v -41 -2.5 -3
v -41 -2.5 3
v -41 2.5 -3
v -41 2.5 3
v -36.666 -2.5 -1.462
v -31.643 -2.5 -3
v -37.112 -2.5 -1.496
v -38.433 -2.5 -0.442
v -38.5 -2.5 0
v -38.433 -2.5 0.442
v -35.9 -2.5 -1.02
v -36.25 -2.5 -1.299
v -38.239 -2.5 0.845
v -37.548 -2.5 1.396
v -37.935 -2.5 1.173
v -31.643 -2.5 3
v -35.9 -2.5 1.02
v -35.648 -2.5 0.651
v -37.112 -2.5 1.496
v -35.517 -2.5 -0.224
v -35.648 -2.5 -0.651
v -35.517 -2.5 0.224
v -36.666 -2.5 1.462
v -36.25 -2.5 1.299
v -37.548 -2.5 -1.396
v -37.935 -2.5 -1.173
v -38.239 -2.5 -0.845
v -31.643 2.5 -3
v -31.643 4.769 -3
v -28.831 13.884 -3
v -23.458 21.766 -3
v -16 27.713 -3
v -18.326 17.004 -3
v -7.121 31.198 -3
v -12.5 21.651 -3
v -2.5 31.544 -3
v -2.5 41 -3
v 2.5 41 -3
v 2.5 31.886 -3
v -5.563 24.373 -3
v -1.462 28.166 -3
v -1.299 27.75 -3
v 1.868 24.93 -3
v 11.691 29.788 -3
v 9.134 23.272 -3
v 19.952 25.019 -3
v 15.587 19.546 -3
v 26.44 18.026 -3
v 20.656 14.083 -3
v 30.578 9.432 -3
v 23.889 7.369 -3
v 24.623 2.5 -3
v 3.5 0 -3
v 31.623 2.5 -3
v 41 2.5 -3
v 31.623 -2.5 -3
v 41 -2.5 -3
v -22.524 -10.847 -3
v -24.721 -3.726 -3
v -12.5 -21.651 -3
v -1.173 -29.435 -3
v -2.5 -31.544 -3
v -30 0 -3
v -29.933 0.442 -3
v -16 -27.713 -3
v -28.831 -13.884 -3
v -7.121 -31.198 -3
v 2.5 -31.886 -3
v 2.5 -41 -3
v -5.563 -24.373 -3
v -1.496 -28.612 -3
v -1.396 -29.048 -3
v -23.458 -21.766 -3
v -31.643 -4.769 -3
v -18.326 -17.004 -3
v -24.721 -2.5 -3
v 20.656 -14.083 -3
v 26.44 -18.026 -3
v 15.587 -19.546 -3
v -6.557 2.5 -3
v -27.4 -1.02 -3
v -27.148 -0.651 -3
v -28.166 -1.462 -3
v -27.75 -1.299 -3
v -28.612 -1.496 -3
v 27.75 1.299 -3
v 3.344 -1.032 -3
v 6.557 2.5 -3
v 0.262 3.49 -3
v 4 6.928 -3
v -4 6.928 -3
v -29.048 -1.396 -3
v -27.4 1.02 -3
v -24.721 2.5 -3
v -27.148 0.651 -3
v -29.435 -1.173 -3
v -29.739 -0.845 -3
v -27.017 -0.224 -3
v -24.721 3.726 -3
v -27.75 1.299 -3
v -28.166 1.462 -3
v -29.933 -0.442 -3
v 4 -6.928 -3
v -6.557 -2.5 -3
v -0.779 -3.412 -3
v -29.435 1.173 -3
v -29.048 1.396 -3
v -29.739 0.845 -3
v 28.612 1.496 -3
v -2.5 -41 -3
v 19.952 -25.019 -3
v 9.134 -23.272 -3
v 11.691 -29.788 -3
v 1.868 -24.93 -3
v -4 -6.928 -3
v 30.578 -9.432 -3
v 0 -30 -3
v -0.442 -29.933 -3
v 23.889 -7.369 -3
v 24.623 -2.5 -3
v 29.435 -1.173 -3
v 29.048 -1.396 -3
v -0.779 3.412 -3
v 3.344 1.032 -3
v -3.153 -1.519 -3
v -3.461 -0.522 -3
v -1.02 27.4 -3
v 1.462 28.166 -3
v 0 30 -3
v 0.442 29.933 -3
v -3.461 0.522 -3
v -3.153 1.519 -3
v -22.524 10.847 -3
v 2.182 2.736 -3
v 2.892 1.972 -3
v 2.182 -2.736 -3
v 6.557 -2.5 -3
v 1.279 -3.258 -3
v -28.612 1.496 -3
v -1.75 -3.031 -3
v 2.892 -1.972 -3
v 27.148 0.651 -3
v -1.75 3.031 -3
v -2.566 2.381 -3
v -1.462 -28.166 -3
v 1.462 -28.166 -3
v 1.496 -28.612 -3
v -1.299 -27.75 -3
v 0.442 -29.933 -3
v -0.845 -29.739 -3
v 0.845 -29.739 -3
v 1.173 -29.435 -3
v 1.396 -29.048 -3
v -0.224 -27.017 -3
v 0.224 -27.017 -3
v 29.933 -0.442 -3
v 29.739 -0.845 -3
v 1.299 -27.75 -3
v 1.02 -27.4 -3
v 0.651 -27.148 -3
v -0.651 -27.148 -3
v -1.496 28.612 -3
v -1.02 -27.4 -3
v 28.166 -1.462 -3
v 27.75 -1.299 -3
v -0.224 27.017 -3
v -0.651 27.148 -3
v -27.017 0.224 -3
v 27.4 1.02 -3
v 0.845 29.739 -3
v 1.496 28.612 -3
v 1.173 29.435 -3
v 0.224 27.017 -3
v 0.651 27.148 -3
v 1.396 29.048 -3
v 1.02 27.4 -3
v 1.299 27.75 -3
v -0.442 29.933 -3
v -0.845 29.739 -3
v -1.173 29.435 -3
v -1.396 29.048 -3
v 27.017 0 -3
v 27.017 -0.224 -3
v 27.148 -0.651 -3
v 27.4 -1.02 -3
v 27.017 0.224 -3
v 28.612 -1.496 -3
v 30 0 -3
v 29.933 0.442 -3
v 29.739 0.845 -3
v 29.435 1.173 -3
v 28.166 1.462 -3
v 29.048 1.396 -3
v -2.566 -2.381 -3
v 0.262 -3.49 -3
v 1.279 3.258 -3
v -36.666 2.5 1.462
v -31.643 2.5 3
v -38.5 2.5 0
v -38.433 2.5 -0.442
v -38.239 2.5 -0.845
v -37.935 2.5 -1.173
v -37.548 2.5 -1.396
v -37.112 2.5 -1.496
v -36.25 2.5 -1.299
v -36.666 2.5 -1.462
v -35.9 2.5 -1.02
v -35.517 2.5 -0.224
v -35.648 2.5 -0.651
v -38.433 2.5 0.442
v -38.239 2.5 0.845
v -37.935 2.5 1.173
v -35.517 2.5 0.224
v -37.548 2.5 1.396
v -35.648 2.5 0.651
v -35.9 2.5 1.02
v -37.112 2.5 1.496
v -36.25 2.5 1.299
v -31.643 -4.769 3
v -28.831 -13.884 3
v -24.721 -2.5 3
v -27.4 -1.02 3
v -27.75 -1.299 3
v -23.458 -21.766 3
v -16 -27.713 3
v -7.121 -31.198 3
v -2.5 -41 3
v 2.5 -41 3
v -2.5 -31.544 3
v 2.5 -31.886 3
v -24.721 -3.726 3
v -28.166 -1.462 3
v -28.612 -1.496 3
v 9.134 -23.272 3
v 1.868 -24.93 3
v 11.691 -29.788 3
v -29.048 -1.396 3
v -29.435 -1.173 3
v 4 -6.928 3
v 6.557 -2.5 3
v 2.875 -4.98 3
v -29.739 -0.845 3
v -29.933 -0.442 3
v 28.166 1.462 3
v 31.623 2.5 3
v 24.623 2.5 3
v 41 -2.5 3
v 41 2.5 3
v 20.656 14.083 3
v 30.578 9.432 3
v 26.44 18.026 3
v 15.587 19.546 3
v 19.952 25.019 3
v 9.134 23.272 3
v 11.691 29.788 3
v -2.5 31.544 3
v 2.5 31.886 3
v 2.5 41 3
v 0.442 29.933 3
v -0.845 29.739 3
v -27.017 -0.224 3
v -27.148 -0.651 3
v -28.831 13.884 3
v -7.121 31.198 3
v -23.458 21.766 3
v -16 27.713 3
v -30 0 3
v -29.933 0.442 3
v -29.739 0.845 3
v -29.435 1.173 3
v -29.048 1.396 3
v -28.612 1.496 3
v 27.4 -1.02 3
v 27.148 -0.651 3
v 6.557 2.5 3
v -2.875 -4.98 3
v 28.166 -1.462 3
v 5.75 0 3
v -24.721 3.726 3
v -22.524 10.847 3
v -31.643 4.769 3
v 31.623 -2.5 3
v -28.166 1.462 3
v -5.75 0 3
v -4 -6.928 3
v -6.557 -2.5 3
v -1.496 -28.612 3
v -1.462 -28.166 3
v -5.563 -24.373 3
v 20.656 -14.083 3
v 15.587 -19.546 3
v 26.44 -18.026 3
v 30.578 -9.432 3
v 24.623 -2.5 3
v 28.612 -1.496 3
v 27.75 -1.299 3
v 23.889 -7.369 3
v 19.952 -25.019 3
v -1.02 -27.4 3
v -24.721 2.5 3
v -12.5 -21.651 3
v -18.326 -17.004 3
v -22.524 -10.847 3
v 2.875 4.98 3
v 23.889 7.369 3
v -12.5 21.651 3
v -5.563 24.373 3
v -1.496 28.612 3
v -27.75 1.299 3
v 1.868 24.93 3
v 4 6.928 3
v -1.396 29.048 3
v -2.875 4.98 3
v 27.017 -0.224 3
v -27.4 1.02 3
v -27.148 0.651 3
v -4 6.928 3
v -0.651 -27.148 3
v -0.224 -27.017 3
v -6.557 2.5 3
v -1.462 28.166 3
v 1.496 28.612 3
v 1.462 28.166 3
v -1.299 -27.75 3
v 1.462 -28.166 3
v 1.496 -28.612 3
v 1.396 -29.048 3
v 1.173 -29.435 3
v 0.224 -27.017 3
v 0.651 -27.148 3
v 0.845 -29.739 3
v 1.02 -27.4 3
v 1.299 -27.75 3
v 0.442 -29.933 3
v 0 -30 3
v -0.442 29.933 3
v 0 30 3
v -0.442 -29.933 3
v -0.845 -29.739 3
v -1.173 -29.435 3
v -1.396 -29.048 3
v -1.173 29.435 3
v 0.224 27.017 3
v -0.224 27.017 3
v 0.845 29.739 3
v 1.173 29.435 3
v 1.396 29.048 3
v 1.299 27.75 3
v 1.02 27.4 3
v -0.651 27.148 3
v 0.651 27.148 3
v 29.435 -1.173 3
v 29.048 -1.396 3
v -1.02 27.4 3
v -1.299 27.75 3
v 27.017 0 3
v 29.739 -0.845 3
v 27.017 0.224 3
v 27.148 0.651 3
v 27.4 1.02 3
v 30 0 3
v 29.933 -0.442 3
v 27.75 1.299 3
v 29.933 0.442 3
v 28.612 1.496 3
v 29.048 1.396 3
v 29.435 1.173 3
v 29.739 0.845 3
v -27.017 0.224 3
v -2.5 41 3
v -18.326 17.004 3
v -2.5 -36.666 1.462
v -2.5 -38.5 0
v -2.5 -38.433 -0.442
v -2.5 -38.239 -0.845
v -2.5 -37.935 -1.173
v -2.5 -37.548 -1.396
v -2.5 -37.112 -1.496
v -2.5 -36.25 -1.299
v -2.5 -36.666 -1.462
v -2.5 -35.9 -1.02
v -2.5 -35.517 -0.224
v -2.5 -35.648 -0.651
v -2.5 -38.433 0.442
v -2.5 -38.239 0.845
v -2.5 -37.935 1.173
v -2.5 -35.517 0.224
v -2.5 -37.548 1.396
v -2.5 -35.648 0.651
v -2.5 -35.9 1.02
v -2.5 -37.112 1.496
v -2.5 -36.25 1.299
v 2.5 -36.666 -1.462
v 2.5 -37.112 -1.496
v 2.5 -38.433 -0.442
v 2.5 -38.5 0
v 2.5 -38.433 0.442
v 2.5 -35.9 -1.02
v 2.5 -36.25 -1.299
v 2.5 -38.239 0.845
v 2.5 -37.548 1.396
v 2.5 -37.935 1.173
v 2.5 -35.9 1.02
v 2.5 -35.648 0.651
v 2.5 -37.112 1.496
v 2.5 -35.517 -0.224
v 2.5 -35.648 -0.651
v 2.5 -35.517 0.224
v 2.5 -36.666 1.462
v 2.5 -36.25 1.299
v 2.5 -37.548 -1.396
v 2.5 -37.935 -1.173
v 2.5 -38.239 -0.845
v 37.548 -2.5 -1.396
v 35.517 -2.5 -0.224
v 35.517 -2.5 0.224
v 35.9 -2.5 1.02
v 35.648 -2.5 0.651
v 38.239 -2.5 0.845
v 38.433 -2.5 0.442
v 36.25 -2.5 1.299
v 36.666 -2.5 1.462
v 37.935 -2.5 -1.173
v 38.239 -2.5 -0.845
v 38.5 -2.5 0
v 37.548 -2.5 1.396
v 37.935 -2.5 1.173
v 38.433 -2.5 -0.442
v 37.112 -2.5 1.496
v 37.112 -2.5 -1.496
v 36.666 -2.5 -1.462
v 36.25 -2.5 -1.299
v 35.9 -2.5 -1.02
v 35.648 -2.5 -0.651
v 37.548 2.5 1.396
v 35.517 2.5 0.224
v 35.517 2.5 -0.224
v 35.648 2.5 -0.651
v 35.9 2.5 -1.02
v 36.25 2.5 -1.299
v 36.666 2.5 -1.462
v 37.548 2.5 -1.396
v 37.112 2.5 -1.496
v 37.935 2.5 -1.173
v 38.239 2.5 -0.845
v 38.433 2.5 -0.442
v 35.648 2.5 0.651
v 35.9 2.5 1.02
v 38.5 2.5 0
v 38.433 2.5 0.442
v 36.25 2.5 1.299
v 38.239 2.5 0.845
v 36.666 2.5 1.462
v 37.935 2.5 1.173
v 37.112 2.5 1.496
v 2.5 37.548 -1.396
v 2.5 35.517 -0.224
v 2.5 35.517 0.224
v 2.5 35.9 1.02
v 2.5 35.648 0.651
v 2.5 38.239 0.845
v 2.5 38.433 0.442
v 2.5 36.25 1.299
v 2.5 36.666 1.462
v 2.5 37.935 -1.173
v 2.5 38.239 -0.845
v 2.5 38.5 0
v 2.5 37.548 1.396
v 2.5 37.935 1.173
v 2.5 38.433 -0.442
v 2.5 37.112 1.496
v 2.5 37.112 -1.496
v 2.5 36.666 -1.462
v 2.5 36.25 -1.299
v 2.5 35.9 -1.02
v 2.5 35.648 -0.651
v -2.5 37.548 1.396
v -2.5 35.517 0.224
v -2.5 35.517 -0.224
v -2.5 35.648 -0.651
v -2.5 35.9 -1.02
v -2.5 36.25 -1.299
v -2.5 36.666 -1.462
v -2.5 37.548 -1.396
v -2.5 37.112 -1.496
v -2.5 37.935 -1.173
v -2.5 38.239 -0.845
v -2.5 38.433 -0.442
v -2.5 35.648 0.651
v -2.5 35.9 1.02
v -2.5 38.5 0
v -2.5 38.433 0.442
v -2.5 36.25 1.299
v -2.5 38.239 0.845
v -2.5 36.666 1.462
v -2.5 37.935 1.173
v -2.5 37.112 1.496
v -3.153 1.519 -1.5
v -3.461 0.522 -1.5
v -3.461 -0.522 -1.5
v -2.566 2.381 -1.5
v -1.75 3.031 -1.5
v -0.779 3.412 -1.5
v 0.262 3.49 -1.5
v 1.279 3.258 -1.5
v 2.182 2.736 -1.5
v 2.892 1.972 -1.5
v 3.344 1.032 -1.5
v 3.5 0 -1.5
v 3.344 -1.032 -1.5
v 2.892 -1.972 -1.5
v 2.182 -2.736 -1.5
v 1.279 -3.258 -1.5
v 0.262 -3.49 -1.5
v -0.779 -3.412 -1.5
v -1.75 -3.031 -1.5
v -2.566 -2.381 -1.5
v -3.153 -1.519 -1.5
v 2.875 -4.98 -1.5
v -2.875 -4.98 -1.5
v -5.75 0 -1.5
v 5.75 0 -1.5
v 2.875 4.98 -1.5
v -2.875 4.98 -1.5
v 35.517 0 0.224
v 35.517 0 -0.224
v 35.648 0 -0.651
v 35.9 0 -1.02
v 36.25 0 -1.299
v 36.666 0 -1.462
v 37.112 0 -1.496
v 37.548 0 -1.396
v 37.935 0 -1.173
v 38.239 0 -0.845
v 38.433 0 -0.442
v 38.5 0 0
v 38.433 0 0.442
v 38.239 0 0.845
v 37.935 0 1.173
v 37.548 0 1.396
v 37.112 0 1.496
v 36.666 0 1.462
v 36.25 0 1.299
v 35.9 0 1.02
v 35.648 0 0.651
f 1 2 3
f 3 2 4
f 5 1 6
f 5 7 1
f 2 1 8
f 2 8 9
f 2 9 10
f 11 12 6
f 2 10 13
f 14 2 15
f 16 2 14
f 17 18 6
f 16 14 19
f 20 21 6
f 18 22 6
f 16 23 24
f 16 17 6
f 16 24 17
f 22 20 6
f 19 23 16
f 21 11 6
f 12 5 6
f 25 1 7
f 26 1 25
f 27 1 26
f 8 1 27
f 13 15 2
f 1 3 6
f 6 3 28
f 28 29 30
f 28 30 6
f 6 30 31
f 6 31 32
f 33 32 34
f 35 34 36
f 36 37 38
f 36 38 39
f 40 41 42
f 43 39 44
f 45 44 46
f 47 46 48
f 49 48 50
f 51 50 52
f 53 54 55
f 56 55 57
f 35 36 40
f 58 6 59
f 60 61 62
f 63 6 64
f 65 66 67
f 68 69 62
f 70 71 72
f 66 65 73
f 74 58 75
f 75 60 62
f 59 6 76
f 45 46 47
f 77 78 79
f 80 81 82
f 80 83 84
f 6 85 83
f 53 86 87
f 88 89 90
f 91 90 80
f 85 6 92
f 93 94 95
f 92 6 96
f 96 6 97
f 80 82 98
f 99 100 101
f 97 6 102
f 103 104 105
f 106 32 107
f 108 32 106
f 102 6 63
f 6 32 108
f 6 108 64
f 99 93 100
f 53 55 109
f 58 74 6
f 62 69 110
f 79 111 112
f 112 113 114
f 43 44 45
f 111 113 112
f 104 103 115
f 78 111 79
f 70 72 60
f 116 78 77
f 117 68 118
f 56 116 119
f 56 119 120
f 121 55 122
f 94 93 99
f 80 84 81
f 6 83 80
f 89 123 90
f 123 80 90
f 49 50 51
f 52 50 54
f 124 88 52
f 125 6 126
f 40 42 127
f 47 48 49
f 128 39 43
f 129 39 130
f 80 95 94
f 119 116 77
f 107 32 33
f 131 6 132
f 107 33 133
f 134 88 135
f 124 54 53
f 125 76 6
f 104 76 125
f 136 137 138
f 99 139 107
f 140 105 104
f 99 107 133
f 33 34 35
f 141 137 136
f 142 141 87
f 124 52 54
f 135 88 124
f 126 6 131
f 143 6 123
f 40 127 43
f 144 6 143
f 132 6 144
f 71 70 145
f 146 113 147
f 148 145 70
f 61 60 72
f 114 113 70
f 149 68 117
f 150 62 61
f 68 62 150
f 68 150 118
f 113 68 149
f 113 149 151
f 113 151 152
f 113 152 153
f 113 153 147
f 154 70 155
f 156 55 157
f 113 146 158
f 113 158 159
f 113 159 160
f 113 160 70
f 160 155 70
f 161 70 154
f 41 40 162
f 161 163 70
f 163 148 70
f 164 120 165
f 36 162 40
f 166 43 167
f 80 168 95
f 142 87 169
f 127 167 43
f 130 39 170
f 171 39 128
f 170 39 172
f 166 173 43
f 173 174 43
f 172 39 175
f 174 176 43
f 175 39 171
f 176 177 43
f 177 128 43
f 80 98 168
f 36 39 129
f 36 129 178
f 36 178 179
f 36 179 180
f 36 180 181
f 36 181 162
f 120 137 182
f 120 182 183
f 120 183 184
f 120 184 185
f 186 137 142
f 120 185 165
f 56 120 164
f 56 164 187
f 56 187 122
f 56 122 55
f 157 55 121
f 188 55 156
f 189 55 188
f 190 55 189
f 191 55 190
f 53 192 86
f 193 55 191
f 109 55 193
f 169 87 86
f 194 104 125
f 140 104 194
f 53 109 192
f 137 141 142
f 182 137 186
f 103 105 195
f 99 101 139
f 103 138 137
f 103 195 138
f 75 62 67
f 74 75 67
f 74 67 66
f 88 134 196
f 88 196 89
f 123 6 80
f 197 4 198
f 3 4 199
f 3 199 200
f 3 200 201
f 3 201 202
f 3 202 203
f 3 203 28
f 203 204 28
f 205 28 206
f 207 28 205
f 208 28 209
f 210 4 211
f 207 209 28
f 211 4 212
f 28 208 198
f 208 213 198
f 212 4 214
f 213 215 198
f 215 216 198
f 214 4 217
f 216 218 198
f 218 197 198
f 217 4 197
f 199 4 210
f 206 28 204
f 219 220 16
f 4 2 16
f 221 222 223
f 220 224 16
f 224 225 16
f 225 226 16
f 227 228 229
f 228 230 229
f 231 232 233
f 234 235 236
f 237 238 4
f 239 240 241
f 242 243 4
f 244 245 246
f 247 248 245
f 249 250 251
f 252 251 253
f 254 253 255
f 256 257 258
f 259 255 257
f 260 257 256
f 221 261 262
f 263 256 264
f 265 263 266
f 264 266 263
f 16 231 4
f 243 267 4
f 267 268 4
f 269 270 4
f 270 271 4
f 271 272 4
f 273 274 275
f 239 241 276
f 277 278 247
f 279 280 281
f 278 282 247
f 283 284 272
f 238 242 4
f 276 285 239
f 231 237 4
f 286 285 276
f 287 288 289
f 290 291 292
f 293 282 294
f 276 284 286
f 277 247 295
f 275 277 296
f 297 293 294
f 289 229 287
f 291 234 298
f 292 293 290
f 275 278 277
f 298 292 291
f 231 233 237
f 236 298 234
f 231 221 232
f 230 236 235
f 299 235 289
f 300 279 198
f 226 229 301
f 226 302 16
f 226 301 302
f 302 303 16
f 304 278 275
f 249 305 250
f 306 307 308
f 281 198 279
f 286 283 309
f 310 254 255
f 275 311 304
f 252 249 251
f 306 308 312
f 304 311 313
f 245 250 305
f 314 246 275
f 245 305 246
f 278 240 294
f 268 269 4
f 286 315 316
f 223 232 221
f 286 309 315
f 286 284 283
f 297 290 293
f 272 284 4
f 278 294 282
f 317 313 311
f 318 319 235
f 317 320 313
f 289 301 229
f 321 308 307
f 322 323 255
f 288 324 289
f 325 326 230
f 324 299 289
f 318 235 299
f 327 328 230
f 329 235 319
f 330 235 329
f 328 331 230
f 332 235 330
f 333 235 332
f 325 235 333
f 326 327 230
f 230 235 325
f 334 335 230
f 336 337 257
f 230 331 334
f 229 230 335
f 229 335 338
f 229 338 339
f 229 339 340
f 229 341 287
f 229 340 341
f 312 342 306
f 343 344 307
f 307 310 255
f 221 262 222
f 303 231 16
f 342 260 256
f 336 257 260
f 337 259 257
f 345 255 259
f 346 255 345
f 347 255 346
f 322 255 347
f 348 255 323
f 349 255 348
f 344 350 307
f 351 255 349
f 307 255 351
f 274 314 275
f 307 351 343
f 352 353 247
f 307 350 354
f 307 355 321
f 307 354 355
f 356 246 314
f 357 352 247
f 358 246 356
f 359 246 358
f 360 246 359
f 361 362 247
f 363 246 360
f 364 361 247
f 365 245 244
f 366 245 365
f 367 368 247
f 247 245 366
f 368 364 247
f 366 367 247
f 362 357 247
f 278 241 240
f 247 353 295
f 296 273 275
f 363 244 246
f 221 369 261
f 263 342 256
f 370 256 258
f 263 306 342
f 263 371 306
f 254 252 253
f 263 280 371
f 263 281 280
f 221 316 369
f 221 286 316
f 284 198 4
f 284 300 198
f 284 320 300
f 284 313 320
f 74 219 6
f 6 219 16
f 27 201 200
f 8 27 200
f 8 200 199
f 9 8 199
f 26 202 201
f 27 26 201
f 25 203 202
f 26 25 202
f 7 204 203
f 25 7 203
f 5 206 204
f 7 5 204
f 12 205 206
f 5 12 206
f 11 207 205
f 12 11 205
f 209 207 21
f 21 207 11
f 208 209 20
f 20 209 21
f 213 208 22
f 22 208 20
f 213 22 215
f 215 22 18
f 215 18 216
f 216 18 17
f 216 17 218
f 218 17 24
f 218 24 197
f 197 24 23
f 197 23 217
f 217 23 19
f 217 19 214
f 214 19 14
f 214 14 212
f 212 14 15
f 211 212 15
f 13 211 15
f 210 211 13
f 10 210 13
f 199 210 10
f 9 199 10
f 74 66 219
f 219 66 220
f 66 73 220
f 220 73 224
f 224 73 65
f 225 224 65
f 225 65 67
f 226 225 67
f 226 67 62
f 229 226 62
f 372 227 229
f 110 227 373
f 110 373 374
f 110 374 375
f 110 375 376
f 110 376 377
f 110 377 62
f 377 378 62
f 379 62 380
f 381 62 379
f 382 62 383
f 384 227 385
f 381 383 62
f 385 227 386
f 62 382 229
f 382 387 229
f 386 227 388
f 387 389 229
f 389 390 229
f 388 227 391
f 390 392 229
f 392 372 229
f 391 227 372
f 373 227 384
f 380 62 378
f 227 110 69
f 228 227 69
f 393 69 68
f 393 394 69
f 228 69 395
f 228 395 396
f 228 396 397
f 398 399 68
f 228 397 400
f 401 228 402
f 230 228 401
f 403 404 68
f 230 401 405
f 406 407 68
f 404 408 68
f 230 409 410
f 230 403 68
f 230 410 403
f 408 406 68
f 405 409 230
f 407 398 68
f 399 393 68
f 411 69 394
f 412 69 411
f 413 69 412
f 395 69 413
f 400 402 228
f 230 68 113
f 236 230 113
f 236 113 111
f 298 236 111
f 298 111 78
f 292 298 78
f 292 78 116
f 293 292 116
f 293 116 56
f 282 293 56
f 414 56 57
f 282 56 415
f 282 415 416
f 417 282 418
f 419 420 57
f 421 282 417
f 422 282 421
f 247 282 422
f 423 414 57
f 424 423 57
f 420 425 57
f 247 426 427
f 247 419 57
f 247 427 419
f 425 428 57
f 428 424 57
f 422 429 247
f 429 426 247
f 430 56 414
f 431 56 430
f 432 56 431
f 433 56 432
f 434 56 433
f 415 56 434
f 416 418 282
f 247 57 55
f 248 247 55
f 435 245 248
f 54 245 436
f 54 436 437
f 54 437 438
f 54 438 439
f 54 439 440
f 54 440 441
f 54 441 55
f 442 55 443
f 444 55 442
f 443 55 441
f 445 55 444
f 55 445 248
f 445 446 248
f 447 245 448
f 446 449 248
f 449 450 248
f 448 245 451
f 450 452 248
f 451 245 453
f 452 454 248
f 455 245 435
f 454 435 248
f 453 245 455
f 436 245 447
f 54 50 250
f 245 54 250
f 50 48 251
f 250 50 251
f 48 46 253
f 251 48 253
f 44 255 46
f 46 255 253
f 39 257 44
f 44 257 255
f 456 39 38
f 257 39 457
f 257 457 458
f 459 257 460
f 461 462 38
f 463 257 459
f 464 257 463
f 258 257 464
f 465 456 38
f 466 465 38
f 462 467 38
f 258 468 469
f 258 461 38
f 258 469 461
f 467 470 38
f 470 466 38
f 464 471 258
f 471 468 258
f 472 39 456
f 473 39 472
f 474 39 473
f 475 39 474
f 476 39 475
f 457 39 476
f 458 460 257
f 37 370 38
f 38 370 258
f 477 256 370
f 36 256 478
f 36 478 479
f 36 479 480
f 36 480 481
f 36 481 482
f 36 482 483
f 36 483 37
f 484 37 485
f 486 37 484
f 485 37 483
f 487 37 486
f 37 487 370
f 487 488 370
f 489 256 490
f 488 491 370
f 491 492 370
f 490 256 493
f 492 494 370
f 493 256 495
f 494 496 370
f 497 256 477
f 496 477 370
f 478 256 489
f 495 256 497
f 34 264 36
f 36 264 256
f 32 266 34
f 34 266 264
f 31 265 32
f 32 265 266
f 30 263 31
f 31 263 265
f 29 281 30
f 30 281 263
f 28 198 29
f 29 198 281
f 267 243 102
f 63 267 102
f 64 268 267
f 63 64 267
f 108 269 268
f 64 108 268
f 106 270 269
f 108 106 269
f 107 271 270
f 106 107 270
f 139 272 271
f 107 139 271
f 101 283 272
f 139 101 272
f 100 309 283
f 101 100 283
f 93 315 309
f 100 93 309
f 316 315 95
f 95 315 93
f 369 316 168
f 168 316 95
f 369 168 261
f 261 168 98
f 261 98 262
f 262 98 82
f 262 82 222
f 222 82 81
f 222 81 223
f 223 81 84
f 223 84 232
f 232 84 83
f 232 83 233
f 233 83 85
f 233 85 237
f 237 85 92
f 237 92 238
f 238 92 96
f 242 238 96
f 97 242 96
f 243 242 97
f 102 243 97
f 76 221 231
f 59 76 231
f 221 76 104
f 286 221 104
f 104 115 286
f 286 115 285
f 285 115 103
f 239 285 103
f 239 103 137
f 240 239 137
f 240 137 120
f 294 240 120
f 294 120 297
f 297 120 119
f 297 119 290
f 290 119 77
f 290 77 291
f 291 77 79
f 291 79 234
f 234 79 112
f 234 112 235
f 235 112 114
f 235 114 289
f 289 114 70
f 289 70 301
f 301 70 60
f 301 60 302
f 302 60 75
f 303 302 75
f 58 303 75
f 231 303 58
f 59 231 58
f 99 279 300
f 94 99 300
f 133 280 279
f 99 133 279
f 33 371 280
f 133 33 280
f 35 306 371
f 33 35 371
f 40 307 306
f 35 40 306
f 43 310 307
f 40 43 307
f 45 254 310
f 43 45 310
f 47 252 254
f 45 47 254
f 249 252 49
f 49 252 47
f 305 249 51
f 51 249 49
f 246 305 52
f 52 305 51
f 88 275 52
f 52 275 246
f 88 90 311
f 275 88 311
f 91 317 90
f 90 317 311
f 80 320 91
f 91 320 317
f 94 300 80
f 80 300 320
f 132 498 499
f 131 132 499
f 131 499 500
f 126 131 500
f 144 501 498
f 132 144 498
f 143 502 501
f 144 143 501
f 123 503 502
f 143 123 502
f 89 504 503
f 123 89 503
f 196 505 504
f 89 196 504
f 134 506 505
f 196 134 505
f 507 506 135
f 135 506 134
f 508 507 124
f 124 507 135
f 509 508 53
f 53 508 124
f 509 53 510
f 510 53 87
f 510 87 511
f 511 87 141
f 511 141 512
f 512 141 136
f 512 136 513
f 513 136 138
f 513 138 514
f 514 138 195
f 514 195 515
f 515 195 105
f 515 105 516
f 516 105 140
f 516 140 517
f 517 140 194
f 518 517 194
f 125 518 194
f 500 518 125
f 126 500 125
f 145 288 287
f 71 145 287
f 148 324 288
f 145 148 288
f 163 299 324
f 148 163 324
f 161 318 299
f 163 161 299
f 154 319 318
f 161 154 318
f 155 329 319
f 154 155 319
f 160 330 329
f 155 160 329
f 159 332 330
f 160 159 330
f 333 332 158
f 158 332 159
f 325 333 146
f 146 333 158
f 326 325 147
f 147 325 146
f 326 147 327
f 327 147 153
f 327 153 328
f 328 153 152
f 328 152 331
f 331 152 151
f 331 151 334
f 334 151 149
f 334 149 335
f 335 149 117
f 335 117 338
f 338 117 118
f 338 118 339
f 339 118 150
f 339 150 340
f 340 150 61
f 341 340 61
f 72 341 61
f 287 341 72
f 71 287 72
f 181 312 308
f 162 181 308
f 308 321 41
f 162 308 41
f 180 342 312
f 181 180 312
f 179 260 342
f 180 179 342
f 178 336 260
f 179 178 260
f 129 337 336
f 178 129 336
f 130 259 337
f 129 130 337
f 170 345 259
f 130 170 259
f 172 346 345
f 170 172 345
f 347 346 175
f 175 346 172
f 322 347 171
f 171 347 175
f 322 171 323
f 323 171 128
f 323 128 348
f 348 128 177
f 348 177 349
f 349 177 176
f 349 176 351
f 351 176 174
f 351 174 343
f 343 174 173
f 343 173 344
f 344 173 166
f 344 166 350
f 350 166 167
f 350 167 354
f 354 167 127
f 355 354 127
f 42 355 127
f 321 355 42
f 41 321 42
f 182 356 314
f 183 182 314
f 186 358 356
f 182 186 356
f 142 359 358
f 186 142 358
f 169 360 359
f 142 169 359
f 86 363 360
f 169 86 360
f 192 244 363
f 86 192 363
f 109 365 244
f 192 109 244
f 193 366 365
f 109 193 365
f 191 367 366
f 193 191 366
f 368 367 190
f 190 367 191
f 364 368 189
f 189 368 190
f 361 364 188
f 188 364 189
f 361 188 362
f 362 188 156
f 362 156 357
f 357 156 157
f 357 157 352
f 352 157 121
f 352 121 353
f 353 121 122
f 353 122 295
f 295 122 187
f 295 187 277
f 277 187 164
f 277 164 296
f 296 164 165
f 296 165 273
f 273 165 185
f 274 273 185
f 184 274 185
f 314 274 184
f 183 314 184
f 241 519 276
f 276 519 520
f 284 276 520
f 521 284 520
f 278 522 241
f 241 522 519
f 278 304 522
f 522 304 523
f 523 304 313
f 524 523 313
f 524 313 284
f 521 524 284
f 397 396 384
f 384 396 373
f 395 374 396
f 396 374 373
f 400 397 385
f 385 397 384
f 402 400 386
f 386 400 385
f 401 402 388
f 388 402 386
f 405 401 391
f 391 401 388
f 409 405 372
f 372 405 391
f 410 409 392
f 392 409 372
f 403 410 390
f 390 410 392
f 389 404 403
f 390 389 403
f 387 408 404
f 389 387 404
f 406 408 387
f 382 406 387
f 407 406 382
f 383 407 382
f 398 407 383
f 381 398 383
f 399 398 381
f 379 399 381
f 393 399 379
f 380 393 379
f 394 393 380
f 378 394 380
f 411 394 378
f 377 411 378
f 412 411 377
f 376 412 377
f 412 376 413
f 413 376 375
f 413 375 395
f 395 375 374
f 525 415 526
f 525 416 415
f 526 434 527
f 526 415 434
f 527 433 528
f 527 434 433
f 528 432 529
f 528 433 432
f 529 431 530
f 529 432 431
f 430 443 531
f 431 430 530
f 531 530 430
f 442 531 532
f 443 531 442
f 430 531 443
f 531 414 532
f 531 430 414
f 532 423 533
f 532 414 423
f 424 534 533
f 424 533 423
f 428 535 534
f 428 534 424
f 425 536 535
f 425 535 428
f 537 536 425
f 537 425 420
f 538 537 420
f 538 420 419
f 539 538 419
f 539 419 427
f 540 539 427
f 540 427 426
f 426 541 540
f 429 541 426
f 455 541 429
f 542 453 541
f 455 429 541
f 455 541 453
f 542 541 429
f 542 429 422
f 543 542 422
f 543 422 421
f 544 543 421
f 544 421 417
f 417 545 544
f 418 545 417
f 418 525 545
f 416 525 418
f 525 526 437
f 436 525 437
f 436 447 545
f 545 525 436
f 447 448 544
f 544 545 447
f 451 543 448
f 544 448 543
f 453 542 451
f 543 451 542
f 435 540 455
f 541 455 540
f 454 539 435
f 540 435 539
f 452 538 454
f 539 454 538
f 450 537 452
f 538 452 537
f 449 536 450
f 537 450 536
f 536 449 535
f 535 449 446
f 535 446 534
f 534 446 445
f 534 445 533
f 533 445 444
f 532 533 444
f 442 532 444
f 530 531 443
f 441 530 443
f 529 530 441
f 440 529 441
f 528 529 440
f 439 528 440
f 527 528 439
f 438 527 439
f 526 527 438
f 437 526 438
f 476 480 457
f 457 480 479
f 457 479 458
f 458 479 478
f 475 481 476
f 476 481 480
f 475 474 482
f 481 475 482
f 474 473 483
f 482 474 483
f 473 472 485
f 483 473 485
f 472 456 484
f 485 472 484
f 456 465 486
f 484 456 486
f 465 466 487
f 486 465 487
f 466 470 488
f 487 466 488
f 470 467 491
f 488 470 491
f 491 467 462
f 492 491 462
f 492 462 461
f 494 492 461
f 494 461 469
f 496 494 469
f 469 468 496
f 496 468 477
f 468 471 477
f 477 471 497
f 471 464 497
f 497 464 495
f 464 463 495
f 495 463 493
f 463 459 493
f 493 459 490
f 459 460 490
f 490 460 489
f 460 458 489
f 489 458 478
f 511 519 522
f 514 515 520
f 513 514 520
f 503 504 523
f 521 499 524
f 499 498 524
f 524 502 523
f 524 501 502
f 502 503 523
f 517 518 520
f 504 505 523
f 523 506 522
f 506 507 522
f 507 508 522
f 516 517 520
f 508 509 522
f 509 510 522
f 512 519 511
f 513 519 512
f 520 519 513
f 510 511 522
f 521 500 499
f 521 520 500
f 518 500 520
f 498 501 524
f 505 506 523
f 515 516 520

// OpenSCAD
$fn = 21;
difference(){
	union(){
		difference(){
			union(){	
				translate([0,0,0])cylinder(r = 32, h = 6,center=true);
				cube([5,64+18,6],center=true);
				cube([64+18,5,6],center=true);
				
			}
			translate([0,0,])cylinder(r = 25, h = 7,center=true);
			for(i = [0:90:360]){
				rotate([90,0,i])translate([32+5,0,0])cylinder(r=1.5, h = 7,center = true);
				rotate([0,0,i])translate([32-3.5,0,0])cylinder(r=1.5, h = 7,center = true);
			}
		
		}
		cube([50,5,6],center=true);
		cylinder(r = 8, h = 6, center = true, $fn = 6);
	}
	translate([0,0,1])cylinder(r = 5.75, h = 5, center = true, $fn = 6);	
	cylinder(r = 3.5, h = 7, center = true);
}
